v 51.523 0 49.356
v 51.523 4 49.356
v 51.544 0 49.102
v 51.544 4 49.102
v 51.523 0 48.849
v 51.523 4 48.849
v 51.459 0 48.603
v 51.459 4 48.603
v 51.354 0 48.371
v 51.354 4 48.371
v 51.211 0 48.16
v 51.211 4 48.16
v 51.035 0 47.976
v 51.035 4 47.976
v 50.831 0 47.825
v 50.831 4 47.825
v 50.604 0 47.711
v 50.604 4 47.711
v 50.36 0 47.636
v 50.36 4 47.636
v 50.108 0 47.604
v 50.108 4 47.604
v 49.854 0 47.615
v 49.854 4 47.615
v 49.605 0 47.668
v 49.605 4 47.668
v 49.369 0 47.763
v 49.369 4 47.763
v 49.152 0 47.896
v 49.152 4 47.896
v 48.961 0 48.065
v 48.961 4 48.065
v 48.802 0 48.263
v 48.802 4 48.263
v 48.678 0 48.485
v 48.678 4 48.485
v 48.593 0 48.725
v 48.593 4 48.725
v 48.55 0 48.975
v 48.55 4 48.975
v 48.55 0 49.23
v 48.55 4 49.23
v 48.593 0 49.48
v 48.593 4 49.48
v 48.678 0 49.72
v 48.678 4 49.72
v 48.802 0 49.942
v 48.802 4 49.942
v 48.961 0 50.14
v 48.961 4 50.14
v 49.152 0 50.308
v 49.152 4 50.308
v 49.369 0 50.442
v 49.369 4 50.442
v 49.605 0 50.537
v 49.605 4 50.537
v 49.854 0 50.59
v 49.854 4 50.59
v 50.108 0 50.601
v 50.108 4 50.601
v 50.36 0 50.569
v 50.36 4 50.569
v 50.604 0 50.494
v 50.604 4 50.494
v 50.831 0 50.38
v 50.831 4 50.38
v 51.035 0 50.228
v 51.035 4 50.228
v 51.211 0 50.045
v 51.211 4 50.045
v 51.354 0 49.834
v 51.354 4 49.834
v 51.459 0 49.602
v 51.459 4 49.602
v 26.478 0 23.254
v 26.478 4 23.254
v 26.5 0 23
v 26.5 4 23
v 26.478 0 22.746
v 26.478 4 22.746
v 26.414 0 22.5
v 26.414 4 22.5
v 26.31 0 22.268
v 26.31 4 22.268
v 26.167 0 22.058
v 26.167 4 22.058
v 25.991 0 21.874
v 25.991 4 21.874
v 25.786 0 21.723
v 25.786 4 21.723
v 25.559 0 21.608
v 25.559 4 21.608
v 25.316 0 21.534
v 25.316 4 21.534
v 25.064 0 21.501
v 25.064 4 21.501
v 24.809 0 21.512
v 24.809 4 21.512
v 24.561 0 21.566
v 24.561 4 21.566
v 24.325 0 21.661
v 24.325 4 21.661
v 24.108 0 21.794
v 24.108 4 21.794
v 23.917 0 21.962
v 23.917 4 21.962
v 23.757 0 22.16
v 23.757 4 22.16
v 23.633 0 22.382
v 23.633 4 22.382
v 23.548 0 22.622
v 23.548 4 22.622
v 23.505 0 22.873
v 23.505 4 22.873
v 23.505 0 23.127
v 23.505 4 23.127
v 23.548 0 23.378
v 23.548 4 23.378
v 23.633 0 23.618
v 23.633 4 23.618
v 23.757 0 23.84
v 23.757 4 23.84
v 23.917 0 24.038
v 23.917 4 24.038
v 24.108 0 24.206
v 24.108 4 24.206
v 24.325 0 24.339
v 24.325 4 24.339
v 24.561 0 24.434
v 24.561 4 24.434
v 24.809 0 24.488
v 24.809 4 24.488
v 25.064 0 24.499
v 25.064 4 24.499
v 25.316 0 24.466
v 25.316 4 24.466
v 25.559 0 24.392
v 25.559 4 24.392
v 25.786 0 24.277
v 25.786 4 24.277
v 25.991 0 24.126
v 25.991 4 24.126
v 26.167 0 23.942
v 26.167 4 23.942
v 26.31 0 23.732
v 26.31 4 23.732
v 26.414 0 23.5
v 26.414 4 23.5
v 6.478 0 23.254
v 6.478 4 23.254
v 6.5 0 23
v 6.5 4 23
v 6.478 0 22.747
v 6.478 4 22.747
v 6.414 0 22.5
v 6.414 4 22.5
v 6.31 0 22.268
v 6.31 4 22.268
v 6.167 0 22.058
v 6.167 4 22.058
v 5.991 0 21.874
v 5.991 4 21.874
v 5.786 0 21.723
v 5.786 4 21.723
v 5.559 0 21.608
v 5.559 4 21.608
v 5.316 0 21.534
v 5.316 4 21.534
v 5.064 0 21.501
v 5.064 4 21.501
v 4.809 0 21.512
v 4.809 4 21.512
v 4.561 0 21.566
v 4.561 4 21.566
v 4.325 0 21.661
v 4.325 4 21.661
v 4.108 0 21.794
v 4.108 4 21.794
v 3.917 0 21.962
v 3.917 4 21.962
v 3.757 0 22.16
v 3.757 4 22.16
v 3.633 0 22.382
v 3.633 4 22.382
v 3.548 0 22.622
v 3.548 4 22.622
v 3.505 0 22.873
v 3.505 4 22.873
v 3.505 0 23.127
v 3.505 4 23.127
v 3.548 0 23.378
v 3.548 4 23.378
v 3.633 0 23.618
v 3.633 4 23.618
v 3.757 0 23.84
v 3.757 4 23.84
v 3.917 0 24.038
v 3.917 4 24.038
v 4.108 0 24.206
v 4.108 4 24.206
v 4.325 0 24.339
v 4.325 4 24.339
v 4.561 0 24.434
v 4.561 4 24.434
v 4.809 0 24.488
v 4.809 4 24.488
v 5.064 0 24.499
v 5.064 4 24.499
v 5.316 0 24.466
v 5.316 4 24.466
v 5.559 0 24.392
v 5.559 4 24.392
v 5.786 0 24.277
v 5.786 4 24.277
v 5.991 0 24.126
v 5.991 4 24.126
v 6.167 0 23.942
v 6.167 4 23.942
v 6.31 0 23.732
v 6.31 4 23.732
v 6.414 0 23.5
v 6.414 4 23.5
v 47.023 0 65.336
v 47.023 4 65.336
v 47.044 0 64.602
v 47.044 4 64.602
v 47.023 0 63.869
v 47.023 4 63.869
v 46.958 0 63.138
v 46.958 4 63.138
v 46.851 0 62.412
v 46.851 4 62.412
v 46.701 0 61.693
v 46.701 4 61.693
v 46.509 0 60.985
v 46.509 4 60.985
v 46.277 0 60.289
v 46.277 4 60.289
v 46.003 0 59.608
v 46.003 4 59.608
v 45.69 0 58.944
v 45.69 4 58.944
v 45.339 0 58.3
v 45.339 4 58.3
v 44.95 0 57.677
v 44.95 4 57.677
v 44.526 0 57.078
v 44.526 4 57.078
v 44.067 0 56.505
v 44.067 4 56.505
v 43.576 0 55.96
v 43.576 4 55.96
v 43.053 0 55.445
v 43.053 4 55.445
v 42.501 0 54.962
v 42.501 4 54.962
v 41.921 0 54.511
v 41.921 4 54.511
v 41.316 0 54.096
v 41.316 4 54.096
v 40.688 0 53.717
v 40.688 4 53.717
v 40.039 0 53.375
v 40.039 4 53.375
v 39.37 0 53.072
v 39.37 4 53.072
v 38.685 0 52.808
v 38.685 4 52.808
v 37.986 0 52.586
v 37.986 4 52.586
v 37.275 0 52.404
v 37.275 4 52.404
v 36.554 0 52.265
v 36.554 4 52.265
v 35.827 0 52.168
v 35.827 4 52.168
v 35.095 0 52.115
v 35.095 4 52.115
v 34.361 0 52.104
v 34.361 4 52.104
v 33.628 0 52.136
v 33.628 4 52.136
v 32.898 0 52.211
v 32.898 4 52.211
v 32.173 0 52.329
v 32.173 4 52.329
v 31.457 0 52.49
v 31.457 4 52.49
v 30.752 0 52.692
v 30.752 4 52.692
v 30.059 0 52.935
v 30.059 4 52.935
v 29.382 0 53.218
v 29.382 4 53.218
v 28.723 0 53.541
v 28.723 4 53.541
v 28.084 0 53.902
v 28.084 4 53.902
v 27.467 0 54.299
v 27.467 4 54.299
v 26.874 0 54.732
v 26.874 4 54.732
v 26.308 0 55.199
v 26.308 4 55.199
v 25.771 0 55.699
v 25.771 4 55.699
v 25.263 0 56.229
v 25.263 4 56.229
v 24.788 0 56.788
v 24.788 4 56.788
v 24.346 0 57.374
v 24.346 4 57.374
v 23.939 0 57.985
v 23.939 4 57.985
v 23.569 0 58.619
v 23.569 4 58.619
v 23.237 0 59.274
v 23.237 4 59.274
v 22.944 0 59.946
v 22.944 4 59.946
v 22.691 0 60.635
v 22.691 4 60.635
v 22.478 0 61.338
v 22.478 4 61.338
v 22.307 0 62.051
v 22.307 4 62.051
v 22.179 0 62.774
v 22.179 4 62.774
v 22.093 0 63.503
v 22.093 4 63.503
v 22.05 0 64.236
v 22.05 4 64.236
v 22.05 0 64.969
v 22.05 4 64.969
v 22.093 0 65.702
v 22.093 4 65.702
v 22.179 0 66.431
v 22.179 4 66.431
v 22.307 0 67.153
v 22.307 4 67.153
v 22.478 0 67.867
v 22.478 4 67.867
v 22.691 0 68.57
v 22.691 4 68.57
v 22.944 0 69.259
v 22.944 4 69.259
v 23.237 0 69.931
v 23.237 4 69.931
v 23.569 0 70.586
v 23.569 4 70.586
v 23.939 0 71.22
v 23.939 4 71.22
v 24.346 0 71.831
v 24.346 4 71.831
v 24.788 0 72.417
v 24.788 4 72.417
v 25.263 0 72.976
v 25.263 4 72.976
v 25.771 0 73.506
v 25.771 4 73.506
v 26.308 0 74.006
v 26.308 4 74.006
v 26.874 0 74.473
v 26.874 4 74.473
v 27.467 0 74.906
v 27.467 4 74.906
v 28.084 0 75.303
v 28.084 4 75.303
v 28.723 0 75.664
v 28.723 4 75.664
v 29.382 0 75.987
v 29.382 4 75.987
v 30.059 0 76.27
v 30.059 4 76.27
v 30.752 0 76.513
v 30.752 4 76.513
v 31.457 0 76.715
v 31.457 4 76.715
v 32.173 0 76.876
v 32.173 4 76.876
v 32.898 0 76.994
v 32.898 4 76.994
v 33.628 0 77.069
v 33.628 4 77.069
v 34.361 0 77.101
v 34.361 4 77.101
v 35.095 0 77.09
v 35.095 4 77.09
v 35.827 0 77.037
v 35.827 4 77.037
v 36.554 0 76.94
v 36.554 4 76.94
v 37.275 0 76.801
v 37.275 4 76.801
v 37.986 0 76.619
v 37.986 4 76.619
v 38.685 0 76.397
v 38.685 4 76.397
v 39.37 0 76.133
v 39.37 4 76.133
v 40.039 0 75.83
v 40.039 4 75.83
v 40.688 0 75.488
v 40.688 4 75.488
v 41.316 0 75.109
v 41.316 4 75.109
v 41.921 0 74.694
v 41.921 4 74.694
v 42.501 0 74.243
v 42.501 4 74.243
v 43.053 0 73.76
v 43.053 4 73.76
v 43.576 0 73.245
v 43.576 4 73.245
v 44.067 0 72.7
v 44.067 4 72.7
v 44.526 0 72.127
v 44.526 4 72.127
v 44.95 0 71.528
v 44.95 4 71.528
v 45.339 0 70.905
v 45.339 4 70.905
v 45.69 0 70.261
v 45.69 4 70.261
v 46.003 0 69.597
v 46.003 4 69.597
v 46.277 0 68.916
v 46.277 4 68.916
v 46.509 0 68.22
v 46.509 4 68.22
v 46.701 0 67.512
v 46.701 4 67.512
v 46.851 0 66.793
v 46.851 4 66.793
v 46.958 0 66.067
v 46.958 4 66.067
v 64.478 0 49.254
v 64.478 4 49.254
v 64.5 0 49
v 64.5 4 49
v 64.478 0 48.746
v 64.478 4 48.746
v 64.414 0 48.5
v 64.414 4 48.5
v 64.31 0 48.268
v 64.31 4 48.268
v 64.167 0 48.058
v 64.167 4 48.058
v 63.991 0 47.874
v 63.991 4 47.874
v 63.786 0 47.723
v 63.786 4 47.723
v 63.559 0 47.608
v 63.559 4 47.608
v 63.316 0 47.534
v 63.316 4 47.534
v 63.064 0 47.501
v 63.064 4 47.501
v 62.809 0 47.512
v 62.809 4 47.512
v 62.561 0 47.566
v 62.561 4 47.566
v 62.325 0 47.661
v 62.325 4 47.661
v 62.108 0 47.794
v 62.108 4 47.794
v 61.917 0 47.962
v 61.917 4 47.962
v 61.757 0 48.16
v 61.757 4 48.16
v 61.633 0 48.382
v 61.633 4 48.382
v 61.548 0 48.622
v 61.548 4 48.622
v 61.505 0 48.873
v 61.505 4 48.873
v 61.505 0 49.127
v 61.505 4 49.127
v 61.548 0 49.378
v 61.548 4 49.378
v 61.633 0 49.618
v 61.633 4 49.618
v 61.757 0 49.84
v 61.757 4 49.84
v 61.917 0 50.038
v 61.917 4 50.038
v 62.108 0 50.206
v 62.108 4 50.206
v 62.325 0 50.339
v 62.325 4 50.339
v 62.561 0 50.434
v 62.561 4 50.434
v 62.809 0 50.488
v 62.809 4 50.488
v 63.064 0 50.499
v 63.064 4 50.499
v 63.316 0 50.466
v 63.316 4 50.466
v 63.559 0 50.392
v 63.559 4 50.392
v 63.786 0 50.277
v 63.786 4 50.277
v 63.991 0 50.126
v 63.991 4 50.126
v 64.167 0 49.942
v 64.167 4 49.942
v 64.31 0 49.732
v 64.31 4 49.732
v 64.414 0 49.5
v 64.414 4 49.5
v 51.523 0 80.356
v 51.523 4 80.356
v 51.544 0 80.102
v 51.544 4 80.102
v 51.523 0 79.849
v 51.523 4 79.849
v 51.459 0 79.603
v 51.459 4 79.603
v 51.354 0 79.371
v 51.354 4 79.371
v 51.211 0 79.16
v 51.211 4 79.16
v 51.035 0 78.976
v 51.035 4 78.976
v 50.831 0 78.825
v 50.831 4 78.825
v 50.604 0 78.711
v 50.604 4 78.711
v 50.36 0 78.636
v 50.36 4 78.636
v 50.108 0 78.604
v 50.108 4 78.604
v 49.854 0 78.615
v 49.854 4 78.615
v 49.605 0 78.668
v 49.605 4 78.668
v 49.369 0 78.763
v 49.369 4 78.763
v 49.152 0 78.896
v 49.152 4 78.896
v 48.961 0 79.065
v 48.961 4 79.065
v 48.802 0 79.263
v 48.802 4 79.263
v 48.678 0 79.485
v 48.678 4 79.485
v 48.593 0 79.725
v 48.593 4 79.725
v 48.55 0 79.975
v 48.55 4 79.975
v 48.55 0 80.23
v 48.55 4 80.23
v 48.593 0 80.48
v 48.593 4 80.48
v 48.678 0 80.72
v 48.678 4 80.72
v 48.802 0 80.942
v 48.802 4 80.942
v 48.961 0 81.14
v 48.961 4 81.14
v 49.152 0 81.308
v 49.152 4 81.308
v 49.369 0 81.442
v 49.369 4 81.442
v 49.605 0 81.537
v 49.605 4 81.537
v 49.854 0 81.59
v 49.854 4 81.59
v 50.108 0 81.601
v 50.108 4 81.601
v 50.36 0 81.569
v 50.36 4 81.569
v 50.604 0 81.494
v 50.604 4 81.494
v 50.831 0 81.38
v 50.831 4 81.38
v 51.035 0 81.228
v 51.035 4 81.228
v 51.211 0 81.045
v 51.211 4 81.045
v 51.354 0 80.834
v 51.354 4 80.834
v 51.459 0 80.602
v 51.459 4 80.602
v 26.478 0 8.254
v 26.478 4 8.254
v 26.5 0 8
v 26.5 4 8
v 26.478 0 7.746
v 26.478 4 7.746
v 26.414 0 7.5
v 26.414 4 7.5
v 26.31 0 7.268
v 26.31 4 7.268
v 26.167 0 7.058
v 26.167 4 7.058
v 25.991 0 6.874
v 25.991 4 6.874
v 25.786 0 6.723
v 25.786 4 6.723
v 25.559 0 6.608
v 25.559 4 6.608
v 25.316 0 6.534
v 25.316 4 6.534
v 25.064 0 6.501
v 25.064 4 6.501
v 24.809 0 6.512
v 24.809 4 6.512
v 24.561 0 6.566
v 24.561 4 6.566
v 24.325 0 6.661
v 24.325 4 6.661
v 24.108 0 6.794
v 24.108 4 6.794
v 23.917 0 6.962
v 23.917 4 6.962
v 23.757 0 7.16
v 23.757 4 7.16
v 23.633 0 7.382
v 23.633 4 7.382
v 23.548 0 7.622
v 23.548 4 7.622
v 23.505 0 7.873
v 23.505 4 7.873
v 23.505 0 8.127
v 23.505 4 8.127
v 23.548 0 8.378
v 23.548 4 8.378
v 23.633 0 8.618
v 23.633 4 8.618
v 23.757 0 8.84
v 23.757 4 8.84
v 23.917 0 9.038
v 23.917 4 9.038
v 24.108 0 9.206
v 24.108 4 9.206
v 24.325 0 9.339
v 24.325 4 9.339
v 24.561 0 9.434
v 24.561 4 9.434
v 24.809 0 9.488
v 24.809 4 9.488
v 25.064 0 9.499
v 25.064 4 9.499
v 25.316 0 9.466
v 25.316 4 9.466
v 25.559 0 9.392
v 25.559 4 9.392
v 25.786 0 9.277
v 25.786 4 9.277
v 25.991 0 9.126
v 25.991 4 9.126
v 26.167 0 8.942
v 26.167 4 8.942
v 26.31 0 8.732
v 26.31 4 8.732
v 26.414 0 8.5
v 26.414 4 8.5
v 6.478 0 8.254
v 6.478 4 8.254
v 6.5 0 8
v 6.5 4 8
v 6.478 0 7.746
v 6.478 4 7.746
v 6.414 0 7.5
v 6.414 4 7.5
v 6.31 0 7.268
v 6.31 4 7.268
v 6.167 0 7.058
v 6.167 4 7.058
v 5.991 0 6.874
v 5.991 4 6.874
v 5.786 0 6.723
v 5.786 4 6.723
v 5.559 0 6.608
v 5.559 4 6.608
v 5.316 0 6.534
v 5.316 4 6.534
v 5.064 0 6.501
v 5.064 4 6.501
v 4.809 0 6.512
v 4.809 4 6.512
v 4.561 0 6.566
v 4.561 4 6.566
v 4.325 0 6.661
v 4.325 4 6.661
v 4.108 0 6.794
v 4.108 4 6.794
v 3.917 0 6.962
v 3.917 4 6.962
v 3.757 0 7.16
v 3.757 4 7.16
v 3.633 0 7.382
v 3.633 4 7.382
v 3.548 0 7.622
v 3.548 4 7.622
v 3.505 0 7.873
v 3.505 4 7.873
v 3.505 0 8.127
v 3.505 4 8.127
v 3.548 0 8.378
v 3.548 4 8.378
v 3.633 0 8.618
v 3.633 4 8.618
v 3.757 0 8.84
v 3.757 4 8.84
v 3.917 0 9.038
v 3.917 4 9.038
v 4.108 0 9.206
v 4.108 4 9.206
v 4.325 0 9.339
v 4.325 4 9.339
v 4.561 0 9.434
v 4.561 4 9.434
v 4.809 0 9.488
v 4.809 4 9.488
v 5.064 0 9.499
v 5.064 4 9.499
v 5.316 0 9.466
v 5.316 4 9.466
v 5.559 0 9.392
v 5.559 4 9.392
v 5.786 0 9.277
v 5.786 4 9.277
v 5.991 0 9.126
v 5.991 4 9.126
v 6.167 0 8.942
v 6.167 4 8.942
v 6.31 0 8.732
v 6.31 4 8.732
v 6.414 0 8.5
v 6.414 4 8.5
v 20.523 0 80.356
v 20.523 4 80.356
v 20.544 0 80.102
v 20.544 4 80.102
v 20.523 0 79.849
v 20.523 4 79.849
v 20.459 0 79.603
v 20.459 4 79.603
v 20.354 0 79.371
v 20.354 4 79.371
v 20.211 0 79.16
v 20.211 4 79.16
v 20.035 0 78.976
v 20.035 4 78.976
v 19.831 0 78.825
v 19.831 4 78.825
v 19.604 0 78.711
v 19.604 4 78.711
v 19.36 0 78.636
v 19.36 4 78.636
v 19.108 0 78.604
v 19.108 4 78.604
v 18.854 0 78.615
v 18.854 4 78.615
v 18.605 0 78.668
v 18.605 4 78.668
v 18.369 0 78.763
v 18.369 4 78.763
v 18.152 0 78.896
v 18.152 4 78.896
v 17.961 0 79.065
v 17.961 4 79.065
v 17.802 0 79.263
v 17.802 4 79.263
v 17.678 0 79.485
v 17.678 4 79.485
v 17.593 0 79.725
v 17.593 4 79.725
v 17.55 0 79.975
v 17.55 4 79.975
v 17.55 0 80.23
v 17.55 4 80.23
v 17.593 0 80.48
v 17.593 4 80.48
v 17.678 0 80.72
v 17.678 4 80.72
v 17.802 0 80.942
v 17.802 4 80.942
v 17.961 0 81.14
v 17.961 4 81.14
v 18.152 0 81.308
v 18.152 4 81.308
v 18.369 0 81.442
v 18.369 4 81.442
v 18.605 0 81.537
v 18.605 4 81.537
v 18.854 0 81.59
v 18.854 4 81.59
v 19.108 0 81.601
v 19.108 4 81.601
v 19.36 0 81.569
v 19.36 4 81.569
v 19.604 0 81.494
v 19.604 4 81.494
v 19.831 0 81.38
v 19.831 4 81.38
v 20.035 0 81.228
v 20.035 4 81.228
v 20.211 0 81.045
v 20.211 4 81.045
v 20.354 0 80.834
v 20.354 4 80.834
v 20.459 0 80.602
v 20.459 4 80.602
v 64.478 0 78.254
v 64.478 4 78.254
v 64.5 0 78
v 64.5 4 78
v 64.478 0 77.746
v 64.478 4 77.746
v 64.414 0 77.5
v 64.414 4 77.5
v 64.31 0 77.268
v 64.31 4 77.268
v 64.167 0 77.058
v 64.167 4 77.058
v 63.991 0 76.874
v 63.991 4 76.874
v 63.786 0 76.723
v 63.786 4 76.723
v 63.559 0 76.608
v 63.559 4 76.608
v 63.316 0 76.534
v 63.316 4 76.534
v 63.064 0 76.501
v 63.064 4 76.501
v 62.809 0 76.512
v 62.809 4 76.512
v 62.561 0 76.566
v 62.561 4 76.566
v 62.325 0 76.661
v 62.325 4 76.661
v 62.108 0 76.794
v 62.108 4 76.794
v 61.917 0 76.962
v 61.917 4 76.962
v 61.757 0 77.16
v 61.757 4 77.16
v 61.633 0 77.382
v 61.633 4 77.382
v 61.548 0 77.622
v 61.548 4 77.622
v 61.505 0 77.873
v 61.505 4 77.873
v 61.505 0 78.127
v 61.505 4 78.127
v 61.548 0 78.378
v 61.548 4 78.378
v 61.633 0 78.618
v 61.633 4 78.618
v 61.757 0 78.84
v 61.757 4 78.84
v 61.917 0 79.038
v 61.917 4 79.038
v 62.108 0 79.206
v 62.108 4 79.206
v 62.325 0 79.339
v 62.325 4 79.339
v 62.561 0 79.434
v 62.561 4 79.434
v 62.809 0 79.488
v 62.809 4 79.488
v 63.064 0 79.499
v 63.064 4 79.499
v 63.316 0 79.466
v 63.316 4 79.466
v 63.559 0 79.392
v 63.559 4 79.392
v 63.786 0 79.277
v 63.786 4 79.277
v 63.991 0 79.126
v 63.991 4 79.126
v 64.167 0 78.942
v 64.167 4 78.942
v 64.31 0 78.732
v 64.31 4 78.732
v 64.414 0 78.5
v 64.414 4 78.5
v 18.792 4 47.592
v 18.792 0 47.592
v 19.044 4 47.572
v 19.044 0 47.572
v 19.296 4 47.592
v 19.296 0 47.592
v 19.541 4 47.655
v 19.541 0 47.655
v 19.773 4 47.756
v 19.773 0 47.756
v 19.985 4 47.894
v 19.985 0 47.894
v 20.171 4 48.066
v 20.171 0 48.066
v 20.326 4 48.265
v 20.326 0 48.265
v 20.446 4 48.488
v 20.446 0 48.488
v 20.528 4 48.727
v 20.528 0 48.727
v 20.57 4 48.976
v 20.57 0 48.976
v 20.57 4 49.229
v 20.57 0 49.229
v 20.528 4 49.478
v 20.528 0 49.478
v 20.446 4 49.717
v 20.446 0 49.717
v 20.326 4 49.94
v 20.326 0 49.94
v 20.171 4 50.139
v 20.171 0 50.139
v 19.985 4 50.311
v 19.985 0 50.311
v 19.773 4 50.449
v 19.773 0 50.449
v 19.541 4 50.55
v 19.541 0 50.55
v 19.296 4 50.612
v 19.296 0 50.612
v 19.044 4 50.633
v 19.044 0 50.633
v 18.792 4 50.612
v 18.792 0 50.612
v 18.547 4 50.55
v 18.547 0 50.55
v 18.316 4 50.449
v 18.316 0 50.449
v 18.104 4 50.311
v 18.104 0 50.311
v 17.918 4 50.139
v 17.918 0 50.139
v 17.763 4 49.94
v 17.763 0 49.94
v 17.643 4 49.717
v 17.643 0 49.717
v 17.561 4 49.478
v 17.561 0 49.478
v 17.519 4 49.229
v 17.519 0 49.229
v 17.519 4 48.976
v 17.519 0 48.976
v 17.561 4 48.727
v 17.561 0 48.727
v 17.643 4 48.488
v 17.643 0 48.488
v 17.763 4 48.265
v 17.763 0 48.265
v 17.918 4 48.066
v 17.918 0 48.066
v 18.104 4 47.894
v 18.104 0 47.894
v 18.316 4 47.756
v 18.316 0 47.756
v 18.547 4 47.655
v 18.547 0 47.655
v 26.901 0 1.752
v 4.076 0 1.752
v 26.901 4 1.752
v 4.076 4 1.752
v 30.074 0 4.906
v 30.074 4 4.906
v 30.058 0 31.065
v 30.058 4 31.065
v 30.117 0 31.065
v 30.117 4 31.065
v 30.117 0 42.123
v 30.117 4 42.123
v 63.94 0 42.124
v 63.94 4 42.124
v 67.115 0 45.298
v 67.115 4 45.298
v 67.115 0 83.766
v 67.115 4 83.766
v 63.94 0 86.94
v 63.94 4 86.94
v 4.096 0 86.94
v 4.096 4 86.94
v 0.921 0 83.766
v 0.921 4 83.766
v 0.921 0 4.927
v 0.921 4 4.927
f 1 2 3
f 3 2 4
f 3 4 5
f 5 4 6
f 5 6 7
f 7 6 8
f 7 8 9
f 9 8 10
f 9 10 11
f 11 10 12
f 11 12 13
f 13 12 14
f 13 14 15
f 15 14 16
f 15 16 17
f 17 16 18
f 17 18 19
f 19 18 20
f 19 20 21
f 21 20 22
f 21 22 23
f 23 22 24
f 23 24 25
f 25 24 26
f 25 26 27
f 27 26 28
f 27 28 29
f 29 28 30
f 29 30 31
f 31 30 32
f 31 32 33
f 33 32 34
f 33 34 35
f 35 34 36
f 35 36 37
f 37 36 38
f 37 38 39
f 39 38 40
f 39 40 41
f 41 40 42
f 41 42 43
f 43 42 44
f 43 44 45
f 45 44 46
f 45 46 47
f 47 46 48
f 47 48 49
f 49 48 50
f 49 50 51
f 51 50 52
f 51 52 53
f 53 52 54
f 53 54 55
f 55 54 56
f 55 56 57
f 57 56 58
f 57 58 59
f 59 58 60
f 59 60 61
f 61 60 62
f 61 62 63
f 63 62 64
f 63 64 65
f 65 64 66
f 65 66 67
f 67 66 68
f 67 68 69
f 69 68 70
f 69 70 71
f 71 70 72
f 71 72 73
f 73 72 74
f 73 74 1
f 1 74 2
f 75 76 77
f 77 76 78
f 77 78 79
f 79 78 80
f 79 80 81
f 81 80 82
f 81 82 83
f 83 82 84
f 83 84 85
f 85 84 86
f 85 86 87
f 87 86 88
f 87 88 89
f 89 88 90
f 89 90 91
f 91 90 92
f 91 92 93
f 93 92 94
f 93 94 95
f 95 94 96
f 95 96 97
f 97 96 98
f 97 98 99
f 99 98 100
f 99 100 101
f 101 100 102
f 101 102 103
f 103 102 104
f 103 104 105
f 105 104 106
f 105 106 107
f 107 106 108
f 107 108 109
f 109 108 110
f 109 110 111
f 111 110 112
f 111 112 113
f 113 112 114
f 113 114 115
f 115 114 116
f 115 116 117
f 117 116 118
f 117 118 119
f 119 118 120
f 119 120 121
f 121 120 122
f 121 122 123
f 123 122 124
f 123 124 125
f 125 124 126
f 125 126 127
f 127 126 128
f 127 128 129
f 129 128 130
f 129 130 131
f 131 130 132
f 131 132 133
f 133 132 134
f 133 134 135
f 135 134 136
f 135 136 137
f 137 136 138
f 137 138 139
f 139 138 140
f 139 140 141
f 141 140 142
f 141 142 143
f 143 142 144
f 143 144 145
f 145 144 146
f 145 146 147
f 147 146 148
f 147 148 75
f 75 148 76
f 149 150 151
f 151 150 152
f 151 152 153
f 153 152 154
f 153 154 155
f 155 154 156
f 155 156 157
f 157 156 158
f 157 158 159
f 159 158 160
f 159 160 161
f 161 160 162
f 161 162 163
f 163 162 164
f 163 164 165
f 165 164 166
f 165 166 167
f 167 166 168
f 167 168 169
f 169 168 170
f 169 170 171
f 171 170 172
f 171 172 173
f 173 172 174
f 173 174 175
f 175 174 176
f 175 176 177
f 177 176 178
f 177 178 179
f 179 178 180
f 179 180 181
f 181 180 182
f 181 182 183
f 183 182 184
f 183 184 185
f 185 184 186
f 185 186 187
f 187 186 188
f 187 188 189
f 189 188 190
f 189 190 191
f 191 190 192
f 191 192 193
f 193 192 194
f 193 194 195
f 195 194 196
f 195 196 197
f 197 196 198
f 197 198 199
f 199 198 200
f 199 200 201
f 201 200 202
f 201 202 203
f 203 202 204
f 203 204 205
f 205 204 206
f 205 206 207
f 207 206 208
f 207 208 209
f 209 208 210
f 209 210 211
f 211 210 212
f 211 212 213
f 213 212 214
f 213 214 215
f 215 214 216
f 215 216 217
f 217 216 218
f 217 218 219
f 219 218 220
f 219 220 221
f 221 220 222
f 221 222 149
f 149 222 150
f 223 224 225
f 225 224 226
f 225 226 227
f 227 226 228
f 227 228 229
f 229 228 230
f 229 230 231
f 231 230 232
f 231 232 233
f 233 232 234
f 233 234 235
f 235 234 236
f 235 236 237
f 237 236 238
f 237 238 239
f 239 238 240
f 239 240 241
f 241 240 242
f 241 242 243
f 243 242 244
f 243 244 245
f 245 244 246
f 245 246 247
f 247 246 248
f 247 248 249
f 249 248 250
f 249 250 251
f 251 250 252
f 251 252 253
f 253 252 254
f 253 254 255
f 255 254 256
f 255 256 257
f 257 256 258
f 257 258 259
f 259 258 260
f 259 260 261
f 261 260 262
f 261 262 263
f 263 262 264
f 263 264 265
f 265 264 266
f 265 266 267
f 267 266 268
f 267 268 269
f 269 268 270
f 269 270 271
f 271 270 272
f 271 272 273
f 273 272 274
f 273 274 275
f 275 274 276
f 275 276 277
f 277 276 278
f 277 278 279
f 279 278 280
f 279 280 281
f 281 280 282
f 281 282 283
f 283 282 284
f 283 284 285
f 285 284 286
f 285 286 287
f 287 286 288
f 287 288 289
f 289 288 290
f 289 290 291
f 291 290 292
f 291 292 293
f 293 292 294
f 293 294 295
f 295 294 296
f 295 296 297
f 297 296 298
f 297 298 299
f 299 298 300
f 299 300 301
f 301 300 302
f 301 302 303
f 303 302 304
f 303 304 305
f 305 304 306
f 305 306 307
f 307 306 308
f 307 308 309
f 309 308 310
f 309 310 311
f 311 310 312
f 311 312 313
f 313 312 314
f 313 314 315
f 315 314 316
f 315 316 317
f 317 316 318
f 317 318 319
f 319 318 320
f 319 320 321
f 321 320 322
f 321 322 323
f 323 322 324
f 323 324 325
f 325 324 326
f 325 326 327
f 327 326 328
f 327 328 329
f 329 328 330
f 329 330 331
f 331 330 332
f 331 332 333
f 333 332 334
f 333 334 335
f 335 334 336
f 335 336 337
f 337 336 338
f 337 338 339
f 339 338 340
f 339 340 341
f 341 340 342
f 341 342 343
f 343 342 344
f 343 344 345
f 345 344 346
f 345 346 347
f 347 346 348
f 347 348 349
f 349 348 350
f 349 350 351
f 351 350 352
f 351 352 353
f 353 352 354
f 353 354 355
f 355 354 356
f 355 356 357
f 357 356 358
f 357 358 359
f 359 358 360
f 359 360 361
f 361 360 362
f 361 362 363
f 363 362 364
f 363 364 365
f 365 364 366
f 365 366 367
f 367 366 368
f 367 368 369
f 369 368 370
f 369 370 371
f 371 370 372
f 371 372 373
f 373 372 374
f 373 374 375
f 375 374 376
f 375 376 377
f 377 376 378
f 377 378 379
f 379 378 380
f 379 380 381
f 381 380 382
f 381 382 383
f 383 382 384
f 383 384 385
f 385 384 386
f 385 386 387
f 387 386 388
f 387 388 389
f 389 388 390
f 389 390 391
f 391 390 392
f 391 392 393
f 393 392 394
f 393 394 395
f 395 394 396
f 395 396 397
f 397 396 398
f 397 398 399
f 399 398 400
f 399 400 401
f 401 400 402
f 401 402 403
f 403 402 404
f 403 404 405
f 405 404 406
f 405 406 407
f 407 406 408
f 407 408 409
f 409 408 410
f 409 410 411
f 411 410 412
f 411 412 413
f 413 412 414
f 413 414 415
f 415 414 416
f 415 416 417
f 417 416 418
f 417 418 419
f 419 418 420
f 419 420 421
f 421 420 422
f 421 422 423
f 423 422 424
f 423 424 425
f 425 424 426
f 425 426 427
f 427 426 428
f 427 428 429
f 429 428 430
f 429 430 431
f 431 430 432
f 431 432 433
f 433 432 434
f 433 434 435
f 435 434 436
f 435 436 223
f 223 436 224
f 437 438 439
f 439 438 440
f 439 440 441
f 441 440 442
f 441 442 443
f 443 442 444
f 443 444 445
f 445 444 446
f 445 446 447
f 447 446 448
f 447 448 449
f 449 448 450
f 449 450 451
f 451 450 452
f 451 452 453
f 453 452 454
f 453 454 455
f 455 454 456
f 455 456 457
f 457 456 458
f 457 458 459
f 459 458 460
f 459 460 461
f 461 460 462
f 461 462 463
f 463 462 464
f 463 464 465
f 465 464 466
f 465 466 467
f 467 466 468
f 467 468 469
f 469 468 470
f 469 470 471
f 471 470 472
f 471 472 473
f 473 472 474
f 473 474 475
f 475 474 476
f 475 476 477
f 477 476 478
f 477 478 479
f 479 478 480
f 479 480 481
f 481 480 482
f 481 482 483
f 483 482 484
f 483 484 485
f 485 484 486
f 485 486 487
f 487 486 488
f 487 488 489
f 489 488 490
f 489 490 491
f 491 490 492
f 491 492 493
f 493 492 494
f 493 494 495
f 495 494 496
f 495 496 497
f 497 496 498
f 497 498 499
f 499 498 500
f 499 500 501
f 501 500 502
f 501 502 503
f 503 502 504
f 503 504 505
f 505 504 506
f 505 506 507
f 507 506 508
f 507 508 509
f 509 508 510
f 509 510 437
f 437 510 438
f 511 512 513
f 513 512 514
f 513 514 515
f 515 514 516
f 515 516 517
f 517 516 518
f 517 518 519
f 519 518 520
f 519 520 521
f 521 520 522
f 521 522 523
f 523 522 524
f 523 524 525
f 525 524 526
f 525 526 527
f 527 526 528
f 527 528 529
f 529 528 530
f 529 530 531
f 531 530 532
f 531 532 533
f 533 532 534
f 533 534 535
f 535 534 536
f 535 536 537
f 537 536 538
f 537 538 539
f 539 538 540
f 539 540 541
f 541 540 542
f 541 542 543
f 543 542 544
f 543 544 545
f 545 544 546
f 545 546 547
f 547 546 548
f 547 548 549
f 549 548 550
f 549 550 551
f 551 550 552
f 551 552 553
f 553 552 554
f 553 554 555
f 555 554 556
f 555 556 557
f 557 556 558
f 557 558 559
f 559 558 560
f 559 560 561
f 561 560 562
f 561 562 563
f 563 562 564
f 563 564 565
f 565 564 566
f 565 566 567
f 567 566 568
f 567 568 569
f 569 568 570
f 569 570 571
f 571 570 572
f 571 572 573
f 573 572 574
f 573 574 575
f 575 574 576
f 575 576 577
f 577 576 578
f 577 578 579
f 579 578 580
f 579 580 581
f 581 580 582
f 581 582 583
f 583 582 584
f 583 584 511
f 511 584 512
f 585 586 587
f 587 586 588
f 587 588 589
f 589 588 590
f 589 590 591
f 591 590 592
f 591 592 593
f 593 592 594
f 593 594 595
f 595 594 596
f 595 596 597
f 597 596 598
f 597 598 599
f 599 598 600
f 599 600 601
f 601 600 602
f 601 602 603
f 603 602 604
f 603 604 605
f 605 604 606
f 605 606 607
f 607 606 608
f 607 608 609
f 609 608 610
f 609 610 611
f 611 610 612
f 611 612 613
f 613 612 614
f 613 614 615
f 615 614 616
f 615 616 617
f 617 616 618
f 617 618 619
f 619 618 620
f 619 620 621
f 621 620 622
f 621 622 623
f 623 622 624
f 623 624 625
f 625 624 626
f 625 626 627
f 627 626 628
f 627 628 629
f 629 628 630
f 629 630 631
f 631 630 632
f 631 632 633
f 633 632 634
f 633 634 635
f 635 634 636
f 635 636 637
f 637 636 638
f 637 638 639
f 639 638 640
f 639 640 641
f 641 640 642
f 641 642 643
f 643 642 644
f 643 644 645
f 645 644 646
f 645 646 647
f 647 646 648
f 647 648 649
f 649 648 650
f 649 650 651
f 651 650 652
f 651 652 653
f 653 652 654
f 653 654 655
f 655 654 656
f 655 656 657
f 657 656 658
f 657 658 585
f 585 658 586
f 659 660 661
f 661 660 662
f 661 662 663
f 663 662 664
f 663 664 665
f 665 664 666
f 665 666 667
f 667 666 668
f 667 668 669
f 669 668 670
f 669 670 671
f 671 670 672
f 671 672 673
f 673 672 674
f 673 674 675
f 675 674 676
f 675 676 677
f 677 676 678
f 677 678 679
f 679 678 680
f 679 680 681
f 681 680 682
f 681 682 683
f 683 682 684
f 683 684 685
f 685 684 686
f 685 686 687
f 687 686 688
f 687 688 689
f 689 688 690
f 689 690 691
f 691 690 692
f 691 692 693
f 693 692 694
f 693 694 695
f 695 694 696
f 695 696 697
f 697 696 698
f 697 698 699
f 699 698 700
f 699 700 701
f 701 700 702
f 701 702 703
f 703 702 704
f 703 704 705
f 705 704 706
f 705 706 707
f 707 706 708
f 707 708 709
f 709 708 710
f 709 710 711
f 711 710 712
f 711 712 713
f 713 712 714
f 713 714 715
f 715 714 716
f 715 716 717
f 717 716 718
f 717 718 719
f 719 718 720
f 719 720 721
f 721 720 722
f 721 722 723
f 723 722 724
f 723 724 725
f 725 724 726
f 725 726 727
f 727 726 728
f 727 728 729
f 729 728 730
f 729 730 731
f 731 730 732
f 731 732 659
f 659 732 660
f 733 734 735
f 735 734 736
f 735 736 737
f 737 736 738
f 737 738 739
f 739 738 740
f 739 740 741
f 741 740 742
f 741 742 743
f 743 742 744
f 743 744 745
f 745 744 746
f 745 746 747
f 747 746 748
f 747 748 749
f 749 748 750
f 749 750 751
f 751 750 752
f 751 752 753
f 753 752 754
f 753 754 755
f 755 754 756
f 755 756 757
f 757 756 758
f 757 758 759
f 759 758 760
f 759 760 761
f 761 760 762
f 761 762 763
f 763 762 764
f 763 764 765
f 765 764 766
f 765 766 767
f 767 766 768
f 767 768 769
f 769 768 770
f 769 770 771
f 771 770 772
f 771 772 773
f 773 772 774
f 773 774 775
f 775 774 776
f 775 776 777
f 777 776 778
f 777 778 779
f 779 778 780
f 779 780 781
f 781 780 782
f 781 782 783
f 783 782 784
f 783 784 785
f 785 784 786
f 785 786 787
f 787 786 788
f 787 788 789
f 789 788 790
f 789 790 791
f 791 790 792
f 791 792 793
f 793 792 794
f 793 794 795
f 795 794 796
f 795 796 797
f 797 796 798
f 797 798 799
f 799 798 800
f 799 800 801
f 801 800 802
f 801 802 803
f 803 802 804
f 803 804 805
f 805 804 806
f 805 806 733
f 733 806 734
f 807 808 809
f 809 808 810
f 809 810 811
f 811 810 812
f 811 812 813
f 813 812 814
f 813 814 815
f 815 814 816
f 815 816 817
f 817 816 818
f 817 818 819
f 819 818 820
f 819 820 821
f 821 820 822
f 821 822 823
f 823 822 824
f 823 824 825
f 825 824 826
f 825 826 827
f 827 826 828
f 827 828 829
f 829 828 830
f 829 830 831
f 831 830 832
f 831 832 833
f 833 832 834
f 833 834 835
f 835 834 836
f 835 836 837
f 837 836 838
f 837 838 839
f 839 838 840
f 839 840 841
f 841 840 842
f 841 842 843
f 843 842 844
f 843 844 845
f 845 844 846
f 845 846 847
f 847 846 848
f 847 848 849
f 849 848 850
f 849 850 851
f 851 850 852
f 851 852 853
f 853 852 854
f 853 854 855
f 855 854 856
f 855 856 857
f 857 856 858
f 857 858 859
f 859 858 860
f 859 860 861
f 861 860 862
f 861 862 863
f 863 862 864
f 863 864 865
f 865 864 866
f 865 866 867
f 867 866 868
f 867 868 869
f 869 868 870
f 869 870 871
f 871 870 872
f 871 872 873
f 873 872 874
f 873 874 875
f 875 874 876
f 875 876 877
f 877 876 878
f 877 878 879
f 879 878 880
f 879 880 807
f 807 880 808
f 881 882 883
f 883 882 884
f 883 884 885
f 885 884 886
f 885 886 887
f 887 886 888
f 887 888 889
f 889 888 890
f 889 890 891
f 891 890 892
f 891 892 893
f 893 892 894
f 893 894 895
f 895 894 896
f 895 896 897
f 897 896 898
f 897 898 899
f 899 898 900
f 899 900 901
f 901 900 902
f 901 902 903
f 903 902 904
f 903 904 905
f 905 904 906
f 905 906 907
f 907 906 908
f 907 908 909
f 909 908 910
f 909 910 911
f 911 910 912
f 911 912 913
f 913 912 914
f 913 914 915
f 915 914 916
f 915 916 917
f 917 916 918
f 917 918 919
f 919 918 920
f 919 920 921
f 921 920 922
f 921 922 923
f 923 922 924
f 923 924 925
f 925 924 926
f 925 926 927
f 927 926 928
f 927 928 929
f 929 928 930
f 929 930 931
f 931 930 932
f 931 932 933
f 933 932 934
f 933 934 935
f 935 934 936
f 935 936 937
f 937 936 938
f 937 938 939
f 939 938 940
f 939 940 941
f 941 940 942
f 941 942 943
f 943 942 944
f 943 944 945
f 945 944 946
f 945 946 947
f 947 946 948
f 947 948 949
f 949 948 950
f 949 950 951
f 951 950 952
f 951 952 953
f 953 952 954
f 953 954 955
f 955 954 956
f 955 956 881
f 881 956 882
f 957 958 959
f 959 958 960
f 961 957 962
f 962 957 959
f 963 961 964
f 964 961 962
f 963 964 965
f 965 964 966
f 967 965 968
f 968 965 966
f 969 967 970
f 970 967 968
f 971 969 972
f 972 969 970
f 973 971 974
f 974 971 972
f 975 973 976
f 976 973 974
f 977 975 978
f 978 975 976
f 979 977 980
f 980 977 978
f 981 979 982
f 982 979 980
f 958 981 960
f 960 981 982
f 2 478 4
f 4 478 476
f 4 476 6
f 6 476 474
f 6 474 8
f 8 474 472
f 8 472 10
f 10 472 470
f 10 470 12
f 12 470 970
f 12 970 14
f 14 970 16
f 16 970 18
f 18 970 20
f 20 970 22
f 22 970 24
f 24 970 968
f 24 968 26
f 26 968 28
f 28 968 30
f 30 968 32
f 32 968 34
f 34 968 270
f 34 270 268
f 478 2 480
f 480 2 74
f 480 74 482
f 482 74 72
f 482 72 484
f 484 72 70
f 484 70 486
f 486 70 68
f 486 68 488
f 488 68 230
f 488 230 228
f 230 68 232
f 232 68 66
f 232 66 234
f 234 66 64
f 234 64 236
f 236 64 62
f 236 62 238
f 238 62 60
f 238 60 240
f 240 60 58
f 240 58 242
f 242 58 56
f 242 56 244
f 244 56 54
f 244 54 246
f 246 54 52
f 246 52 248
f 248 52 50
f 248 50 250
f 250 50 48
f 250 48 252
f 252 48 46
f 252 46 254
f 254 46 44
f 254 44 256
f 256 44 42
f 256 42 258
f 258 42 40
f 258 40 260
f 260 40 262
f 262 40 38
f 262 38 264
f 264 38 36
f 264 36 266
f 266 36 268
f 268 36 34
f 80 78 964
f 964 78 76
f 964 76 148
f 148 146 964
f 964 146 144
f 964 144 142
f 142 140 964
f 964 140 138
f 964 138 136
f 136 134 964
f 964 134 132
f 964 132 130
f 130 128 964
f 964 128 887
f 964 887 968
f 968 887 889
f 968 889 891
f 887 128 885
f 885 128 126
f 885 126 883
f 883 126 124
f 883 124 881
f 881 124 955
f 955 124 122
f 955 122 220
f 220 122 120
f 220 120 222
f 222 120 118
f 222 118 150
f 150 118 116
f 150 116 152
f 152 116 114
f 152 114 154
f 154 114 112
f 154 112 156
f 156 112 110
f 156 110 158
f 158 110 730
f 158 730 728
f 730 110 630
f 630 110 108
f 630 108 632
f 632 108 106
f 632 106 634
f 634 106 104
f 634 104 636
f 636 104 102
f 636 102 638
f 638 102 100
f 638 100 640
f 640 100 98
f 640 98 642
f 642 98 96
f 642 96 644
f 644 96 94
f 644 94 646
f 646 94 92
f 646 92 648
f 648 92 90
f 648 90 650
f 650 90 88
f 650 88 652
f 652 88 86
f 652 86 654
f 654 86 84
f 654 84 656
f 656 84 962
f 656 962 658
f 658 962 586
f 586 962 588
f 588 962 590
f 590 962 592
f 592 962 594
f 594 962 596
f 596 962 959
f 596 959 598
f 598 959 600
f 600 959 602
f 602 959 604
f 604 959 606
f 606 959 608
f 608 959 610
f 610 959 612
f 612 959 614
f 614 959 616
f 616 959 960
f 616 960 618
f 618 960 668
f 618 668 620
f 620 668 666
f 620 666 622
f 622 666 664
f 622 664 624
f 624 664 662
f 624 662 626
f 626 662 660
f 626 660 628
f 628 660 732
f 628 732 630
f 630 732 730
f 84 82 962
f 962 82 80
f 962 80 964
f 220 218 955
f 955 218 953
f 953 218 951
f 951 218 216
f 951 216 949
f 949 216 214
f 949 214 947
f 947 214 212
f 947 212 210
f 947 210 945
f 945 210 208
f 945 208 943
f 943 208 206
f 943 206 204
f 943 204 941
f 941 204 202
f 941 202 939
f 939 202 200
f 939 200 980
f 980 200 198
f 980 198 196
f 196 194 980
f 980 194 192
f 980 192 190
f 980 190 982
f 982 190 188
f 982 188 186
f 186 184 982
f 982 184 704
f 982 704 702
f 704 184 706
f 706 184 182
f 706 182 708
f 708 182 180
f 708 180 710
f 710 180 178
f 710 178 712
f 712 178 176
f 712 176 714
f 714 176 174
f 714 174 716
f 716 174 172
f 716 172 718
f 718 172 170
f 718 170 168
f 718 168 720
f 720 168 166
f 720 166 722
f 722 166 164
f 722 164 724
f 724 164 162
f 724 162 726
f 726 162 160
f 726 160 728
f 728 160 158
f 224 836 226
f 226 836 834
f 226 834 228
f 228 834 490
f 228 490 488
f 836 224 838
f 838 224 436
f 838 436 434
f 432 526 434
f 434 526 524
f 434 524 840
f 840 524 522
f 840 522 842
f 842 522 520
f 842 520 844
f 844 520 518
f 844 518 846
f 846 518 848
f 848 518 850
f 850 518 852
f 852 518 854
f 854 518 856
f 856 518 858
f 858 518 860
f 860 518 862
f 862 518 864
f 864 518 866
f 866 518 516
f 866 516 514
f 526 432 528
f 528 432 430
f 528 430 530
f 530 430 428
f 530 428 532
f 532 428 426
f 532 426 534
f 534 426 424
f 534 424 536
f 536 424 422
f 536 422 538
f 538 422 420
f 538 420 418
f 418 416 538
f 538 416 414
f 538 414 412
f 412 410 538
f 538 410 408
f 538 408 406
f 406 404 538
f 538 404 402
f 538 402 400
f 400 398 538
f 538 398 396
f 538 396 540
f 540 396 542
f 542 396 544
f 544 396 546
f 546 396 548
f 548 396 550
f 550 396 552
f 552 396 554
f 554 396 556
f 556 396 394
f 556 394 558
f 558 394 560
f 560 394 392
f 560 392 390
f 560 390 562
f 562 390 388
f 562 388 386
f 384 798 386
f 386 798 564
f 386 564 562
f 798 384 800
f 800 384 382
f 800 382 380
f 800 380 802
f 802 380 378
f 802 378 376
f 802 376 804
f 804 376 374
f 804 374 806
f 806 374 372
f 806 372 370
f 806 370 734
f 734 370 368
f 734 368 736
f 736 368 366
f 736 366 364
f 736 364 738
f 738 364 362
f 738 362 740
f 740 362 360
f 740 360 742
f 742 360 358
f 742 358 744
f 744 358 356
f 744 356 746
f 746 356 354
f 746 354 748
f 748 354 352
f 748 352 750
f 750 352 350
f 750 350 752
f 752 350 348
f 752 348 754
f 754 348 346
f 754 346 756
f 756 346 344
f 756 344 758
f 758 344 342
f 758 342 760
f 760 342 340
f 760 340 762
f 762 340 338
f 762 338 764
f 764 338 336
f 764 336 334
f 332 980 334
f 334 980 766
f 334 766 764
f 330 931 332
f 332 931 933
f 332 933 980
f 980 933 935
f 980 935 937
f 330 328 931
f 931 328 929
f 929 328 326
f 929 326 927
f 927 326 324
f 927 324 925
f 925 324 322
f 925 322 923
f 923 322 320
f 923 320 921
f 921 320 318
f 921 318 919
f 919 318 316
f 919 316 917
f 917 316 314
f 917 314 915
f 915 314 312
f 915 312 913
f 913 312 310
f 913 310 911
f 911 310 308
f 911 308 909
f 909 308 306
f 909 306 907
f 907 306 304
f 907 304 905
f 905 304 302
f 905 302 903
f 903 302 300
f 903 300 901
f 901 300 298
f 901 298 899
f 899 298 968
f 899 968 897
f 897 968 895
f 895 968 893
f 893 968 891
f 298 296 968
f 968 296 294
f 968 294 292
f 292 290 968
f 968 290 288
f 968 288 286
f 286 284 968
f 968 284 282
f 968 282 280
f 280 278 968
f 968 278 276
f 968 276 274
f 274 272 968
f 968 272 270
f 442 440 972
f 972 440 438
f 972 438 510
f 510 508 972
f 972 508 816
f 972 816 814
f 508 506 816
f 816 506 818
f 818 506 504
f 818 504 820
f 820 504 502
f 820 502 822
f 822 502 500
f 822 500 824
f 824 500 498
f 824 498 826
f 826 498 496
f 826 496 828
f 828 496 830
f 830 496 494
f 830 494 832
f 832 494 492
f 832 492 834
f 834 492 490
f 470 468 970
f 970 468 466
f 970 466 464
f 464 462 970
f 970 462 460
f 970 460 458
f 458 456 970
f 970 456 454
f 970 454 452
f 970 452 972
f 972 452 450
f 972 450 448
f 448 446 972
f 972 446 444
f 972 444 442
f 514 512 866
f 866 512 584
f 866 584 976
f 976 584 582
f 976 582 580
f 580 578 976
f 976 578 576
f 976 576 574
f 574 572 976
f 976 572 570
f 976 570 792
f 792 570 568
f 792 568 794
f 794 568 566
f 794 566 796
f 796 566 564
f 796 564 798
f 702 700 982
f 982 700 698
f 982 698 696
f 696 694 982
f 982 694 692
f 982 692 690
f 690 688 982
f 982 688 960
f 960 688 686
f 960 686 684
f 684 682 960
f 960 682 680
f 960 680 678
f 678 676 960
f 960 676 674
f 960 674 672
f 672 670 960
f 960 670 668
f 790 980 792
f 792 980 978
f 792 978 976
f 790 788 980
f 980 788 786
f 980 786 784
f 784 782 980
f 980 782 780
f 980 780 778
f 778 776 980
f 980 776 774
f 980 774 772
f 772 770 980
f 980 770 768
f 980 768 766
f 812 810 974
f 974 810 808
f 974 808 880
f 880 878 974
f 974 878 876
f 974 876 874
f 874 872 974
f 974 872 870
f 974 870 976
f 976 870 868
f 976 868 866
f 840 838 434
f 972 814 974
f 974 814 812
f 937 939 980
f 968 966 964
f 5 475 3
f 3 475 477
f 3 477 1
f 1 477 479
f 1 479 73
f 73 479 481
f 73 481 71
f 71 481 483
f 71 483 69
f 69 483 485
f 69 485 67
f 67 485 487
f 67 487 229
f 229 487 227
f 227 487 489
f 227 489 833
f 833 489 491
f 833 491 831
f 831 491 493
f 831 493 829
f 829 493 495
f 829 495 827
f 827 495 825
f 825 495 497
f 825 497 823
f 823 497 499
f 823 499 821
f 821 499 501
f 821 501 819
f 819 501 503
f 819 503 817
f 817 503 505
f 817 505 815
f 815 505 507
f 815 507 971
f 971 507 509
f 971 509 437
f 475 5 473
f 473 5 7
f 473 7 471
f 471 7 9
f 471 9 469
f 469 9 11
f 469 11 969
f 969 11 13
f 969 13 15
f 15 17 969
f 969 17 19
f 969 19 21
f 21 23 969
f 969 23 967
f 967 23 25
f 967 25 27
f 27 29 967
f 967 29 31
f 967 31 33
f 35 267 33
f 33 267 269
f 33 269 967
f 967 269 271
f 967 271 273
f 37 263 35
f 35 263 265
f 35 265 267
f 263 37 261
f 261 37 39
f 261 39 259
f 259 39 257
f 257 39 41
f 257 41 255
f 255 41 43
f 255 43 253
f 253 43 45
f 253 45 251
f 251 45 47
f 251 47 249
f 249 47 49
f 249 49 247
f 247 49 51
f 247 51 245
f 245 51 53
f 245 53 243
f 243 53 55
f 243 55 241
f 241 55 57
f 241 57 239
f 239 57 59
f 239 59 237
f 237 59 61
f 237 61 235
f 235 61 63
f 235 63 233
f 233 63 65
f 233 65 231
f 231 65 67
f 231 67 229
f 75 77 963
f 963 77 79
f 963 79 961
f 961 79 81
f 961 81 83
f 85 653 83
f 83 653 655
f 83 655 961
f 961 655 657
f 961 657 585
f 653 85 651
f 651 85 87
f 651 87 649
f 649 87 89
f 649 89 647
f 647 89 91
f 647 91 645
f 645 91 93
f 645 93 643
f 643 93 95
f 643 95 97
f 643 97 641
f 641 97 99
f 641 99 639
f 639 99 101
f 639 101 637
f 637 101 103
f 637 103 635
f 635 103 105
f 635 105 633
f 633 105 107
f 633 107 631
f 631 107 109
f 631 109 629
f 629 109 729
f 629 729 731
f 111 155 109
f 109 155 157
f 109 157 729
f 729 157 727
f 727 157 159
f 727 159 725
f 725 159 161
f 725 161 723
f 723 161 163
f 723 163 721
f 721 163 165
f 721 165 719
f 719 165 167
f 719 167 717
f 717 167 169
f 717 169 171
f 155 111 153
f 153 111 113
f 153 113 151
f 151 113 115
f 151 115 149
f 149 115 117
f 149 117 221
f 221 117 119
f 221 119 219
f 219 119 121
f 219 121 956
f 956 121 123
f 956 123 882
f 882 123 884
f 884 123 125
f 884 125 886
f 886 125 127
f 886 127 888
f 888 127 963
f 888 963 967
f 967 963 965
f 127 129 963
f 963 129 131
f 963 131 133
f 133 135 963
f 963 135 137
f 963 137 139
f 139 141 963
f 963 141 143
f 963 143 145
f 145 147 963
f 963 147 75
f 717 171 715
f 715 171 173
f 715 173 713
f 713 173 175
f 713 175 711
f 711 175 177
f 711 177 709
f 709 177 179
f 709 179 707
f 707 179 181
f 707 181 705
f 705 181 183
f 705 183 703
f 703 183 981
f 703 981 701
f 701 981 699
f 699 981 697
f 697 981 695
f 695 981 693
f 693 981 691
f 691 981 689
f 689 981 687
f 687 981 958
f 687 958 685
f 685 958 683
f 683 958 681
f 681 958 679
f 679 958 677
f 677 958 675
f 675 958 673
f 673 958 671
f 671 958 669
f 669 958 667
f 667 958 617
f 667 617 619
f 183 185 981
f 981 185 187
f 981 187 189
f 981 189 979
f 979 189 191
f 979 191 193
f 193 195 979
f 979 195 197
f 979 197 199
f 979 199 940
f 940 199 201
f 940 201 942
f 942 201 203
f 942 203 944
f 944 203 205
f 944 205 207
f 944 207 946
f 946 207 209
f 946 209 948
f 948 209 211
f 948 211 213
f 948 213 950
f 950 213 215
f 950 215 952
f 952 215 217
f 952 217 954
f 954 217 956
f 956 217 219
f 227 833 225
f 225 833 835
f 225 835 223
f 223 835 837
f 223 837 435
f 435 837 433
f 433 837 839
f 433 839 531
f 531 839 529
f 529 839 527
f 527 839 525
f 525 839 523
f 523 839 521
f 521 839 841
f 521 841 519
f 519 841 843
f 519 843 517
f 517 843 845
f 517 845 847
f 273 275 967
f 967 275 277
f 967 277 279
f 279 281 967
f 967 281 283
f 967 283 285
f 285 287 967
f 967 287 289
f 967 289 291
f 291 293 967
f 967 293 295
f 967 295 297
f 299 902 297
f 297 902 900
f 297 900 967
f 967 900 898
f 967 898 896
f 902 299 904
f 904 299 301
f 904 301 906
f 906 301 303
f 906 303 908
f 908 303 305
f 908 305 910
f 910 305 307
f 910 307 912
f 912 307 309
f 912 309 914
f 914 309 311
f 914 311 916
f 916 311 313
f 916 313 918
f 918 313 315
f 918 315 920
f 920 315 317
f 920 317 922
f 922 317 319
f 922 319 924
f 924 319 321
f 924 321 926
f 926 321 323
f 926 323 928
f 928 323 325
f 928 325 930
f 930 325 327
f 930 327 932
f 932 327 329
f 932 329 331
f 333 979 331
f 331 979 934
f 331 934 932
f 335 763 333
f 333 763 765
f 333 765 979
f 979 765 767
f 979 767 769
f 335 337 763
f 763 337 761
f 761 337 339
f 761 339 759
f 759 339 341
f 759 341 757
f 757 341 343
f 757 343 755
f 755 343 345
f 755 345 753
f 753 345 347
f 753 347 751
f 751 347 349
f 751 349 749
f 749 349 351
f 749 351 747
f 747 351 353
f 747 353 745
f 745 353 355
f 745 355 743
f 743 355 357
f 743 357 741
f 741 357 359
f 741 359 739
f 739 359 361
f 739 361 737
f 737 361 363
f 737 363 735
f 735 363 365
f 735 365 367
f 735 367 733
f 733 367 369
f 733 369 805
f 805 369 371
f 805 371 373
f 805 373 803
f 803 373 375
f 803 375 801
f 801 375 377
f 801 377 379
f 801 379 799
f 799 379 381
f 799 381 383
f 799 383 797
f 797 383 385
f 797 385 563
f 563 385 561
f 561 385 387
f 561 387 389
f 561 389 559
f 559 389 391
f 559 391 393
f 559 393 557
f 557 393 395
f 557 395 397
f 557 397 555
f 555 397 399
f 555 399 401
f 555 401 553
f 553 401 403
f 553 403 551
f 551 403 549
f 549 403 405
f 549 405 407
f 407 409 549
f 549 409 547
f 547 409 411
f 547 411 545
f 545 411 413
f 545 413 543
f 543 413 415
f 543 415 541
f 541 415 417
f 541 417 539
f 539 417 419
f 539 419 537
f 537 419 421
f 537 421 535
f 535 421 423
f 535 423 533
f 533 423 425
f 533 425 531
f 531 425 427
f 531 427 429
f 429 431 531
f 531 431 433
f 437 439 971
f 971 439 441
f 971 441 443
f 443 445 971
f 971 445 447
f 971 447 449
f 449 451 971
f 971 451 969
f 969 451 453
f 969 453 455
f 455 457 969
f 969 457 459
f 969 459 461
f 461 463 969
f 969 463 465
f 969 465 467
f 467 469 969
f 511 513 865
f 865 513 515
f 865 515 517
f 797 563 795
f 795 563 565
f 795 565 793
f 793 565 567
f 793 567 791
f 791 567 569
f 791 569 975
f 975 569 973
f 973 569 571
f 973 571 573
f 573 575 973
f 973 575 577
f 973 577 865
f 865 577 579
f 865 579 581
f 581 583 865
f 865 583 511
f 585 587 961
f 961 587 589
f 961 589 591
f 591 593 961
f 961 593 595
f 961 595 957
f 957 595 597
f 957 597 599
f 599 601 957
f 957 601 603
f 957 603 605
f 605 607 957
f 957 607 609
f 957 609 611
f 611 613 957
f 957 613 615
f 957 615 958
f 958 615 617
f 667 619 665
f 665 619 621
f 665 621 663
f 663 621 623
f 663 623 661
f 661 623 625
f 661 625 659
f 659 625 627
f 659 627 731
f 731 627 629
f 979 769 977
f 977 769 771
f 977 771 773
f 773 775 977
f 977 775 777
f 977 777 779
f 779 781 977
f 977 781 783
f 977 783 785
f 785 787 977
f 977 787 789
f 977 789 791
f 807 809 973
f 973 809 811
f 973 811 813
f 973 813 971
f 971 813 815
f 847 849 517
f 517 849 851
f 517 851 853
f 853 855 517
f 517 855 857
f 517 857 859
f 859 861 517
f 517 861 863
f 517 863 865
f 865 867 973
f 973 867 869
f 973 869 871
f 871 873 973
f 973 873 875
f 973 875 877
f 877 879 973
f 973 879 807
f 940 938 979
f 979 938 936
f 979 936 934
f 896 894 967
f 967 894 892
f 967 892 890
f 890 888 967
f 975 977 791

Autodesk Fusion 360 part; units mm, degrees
sketch "Skizze1" plane through (0, 0, 0) normal (0, 1, 0) x (1, 0, 0)
  ellipse E0 centre (19.0444, -49.1025) end of major axis (19.0444, -50.6334) minor radius 1.5307
  line L0 (55.2123, -43.6898) -> (55.2123, -85.3711)
  line L1 (55.2123, -85.3711) -> (13.531, -85.3711)
  line L2 (13.531, -85.3711) -> (13.531, -43.6898)
  line L3 (13.531, -43.6898) -> (55.2123, -43.6898)
  line L4 (26.9008, -1.7518) -> (30.0736, -4.9062)
  line L5 (30.0736, -4.9062) -> (30.0582, -31.0654)
  line L6 (30.0582, -31.0654) -> (30.1165, -31.0654)
  line L7 (30.1165, -31.0654) -> (30.1165, -42.123)
  line L8 (30.1165, -42.123) -> (63.94, -42.1236)
  line L9 (63.94, -42.1236) -> (67.115, -45.2984)
  line L10 (67.115, -45.2984) -> (67.115, -83.7656)
  line L11 (67.115, -83.7656) -> (63.94, -86.9404)
  line L12 (63.94, -86.9404) -> (4.096, -86.9404)
  line L13 (4.096, -86.9404) -> (0.9212, -83.7656)
  line L14 (0.9212, -83.7656) -> (0.9212, -4.9266)
  line L15 (0.9212, -4.9266) -> (4.0757, -1.7518)
  line L16 (4.0757, -1.7518) -> (26.9008, -1.7518)
  line L17 (-656.5386, -196.3597) -> (-656.5386, -172.9852) construction
  line L18 (-656.5386, -172.9852) -> (-663.2077, -172.9852) construction
  line L19 (-663.2077, -172.9852) -> (-663.2077, -196.3597) construction
  line L20 (-663.2077, -196.3597) -> (-656.5386, -196.3597) construction
  line L21 (-786.7672, -196.3598) -> (-786.7672, -172.9853) construction
  line L22 (-786.7672, -172.9853) -> (-793.4364, -172.9853) construction
  line L23 (-793.4364, -172.9853) -> (-793.4364, -196.3598) construction
  line L24 (-793.4364, -196.3598) -> (-786.7672, -196.3598) construction
  circle A0 centre (50.0444, -49.1025) radius 1.5 construction
  circle A1 centre (50.0444, -80.1025) radius 1.5 construction
  line L25 (50.0444, -80.1025) -> (19.0444, -80.1025) construction
  circle A2 centre (19.0444, -80.1025) radius 1.5 construction
  line L26 (19.0444, -80.1025) -> (19.0444, -49.1025) construction
  circle A3 centre (34.4717, -64.6752) radius 12.5 construction
  circle A4 centre (61.4704, -49.0847) radius 1.5 construction
  circle A5 centre (61.4704, -80.2249) radius 1.5 construction
  circle A6 centre (5.4074, -7.8253) radius 1.5 construction
  circle A7 centre (25.4061, -7.8253) radius 1.5 construction
  circle A8 centre (25.4061, -22.5328) radius 1.5 construction
  circle A9 centre (5.4074, -22.5328) radius 1.5 construction
  point P0 (51.8121, -49.1024)
  point P1 (51.6713, -79.7501)
  point P2 (19.0448, -81.2802)
  point P3 (19.0444, -50.6334)
  point P4 (34.1696, -76.3823)
  point P5 (27.8065, -7.8253)
  point P6 (27.8065, -22.5328)
  point P7 (7.8078, -7.8253)
  point P8 (7.8078, -22.5328)
  point P9 (10.9547, -80.1317)
  point P10 (10.9547, -48.9915)
  point P11 (63.8708, -80.2249)
  point P12 (63.8708, -49.0847)
  dimension "d1" = 31
  dimension "d2" = 3
  dimension "d4" = 3
  dimension "d5" = 31
  dimension "d6" = 3
  dimension "d7" = 25
  dimension "d8" = 3
  dimension "d9" = 3
  dimension "d10" = 3
  dimension "d11" = 3
  dimension "d12" = 3
  dimension "d13" = 3
extrude "Extrusion1" add sketch "Skizze1" along normal blind 4 contours L0 L1 L2 L3 | L4 L5 L6 L7 L8 L9 L10 L11 L12 L13 L14 L15 L16
sketch "Skizze2" plane through (0, 4, 0) normal (0, 1, 0) x (-1, 0, 0)
  ellipse E0 centre (-19.0444, 49.1025) end of major axis (-19.0444, 50.6334) minor radius 1.5307
  line L0 (-4.0757, 1.7518) -> (-0.9212, 4.9266)
  line L1 (-0.9212, 4.9266) -> (-0.9212, 83.7656)
  line L2 (-0.9212, 83.7656) -> (-4.096, 86.9404)
  line L3 (-4.096, 86.9404) -> (-63.94, 86.9404)
  line L4 (-63.94, 86.9404) -> (-67.115, 83.7656)
  line L5 (-67.115, 83.7656) -> (-67.115, 45.2984)
  line L6 (-67.115, 45.2984) -> (-63.94, 42.1236)
  line L7 (-63.94, 42.1236) -> (-30.1165, 42.123)
  line L8 (-30.1165, 42.123) -> (-30.1165, 31.0654)
  line L9 (-30.1165, 31.0654) -> (-30.0582, 31.0654)
  line L10 (-30.0582, 31.0654) -> (-30.0736, 4.9062)
  line L11 (-30.0736, 4.9062) -> (-26.9008, 1.7518)
  line L12 (-26.9008, 1.7518) -> (-4.0757, 1.7518)
  circle A0 centre (-50.0444, 49.1025) radius 1.5
  circle A1 centre (-50.0444, 80.1025) radius 1.5
  circle A2 centre (-19.0444, 80.1025) radius 1.5
  circle A3 centre (-34.5444, 64.6025) radius 12.5
  circle A4 centre (-5, 8) radius 1.5
  circle A5 centre (-25, 8) radius 1.5
  circle A6 centre (-5, 23) radius 1.5
  circle A7 centre (-25, 23) radius 1.5
  circle A8 centre (-63, 49) radius 1.5
  circle A9 centre (-63, 78) radius 1.5
  dimension "d16" = 31
  dimension "d17" = 3
  dimension "d18" = 31
  dimension "d19" = 3
  dimension "d20" = 31
  dimension "d21" = 3
  dimension "d22" = 25
  dimension "d23" = 3
  dimension "d24" = 3
  dimension "d25" = 3
  dimension "d26" = 15
  dimension "d27" = 3
  dimension "d28" = 3
  dimension "d29" = 3
extrude "Extrusion2" cut sketch "Skizze2" against normal blind 28 contours A0 | A1 | A2 | A3 | A4 | A5 | A6 | A7 | A8 | A9
sketch "Skizze3" plane through (0, 0, 0) normal (0, 1, 0) x (1, 0, 0)
